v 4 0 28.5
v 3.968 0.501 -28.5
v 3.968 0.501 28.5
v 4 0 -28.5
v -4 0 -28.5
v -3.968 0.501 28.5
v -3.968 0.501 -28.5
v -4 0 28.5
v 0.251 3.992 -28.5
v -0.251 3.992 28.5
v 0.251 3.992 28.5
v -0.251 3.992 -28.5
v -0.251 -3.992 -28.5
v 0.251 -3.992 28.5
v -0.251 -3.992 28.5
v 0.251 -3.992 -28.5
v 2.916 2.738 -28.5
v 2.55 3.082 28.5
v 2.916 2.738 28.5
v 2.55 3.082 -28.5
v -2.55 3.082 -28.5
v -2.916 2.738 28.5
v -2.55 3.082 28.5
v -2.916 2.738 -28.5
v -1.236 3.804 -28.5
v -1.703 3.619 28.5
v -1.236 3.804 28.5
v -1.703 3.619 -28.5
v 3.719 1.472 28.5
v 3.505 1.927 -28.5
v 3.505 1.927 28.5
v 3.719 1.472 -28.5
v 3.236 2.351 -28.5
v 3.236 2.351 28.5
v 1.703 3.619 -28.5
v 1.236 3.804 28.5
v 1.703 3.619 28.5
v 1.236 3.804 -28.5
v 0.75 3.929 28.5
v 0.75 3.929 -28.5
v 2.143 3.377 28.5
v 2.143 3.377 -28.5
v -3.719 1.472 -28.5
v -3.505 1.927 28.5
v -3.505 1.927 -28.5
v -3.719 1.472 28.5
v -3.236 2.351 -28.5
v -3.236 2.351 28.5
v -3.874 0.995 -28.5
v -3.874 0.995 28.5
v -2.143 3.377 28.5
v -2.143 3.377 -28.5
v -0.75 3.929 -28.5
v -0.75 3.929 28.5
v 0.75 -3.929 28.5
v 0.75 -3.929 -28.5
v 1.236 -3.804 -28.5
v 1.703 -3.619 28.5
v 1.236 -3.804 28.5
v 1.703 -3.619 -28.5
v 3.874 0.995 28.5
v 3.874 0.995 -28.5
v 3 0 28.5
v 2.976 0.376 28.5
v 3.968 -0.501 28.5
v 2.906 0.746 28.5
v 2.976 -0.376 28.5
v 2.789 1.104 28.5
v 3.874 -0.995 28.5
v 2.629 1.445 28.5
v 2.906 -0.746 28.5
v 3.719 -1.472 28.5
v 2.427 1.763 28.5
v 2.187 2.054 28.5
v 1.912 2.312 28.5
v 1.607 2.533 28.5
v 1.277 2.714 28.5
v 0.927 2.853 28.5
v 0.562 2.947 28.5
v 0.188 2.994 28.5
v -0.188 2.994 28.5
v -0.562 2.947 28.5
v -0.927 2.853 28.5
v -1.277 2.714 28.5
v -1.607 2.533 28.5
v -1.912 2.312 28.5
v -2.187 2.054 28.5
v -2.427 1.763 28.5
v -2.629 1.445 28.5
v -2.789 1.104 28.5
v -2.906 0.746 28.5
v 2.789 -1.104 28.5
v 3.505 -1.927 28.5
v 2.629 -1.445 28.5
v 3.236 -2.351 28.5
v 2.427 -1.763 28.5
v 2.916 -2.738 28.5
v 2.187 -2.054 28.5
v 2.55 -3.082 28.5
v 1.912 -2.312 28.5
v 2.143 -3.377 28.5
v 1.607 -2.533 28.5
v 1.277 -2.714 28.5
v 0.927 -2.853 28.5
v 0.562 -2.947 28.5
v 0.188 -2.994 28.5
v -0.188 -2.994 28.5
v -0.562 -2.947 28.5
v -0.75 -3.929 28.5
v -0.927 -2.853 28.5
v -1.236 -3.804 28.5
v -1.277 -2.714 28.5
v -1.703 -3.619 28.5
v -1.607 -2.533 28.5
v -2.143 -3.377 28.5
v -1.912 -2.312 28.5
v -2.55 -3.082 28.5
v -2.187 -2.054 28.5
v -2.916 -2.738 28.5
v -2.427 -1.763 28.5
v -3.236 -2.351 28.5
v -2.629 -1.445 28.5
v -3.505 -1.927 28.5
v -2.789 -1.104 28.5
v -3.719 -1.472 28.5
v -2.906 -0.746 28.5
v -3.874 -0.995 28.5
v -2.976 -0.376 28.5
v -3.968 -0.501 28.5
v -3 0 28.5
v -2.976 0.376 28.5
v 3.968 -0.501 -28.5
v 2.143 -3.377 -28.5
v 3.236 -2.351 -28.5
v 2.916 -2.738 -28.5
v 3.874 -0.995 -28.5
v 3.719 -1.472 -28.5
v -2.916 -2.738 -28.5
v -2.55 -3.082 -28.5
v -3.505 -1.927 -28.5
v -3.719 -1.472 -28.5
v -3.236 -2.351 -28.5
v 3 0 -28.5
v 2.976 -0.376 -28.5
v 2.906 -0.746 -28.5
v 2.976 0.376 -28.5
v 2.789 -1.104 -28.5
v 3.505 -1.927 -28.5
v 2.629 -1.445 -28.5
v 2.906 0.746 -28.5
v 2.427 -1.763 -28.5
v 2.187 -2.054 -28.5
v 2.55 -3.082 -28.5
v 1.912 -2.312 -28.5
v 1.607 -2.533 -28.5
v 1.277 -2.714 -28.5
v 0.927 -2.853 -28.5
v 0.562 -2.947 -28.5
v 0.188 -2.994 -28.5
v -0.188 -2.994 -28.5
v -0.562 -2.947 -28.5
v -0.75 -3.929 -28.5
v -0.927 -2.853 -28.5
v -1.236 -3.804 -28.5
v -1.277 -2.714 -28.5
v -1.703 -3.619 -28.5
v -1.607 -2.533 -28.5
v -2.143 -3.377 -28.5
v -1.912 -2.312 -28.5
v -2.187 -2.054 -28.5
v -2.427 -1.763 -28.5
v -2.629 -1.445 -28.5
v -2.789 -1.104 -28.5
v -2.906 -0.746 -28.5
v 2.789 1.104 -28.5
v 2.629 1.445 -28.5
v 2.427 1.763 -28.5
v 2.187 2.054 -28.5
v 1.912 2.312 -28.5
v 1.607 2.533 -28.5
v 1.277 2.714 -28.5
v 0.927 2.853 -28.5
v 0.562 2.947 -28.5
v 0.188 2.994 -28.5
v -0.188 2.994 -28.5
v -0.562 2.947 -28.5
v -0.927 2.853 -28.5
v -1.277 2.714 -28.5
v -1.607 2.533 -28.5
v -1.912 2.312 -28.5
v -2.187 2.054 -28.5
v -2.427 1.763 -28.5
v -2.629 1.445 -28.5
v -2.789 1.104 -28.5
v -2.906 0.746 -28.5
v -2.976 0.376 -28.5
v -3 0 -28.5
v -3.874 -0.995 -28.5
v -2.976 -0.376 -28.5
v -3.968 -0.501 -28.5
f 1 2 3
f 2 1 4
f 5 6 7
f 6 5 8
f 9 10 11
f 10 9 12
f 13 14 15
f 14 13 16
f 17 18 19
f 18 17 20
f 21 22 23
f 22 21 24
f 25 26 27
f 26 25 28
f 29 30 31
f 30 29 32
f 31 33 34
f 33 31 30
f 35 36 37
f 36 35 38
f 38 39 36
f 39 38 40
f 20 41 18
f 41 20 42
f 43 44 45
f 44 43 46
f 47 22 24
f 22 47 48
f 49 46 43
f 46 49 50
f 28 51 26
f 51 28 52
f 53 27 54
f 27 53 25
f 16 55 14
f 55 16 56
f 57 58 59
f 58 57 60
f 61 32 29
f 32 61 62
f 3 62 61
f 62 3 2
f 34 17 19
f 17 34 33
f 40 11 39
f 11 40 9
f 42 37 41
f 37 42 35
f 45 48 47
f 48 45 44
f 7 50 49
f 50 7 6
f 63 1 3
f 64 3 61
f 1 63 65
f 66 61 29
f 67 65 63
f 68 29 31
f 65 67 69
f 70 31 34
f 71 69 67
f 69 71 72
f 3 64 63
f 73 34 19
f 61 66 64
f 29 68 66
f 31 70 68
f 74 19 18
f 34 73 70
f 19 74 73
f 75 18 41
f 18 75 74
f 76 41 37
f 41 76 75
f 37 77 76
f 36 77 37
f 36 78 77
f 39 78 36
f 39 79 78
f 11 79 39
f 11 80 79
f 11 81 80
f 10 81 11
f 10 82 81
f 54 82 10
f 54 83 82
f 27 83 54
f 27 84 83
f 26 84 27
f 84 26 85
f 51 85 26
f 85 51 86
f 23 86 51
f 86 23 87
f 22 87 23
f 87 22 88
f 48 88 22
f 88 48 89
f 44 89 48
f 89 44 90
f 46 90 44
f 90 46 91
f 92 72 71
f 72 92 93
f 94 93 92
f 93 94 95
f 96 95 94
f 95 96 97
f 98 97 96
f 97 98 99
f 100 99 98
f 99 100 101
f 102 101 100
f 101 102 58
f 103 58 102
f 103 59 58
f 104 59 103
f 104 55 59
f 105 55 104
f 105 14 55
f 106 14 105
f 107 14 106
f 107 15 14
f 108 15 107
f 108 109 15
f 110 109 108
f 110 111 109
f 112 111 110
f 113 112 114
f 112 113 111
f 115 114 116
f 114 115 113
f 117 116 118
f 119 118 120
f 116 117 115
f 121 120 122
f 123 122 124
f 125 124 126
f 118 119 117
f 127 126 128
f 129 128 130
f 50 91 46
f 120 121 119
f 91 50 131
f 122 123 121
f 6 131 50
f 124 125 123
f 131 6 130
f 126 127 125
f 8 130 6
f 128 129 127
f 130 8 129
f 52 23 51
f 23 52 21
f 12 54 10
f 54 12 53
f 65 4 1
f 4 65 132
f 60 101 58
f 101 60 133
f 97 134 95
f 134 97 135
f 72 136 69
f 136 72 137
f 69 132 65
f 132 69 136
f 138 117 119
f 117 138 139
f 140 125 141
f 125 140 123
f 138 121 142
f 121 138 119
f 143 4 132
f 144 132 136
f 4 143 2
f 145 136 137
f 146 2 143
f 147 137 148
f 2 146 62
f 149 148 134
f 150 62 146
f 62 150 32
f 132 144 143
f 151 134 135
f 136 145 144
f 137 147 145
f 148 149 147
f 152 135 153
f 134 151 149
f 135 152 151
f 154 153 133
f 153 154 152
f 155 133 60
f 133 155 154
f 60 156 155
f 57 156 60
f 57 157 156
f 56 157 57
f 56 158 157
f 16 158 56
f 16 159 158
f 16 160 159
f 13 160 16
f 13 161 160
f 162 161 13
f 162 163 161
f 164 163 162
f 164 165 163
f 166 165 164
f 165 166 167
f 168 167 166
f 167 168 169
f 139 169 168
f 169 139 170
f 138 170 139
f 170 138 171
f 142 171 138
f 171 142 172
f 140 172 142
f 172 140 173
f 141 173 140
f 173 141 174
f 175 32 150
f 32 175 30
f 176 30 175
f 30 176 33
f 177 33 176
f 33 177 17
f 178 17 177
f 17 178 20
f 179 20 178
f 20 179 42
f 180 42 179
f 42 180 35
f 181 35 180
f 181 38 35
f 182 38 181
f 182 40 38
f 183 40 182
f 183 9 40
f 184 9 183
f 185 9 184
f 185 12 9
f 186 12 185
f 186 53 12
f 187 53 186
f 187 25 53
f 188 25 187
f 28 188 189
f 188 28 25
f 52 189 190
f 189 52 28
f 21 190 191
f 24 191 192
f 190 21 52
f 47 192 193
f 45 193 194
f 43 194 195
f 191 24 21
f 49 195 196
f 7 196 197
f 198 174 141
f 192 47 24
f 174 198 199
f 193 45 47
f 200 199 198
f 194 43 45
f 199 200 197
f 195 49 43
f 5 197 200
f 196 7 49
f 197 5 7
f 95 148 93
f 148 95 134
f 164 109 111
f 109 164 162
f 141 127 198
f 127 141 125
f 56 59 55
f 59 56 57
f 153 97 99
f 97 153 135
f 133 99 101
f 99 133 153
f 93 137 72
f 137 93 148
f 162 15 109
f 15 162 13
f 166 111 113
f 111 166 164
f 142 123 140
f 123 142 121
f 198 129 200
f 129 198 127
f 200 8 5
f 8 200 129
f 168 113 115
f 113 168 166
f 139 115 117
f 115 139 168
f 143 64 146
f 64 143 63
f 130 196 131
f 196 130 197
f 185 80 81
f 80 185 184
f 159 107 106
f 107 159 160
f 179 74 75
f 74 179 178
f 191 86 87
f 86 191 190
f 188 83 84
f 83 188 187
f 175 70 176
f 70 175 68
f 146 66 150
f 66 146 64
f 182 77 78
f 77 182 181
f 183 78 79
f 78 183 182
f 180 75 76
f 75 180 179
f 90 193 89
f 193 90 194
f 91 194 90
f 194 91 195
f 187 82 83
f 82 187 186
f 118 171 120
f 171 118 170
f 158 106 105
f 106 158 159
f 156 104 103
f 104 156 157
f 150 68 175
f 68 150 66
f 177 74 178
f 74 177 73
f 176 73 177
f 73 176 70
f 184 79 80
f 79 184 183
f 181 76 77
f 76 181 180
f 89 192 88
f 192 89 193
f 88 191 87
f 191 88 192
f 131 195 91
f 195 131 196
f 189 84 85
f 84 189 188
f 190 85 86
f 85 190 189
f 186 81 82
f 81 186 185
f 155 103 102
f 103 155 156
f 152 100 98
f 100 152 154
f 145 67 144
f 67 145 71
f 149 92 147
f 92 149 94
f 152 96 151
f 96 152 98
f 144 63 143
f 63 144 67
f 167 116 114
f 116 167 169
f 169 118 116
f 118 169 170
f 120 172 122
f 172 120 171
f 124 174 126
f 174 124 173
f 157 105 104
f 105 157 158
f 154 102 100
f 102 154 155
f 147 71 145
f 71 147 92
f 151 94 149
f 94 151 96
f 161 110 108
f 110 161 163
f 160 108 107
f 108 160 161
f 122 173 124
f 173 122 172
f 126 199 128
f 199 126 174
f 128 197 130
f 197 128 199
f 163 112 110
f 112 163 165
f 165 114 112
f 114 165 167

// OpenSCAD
$fn = 50;


difference() {
	union() {
		translate(v = [0, 0, -28.5000000000]) {
			cylinder(h = 57, r = 4.0000000000);
		}
	}
	union() {
		translate(v = [0, 0, -100.0000000000]) {
			cylinder(h = 200, r = 3);
		}
	}
}
